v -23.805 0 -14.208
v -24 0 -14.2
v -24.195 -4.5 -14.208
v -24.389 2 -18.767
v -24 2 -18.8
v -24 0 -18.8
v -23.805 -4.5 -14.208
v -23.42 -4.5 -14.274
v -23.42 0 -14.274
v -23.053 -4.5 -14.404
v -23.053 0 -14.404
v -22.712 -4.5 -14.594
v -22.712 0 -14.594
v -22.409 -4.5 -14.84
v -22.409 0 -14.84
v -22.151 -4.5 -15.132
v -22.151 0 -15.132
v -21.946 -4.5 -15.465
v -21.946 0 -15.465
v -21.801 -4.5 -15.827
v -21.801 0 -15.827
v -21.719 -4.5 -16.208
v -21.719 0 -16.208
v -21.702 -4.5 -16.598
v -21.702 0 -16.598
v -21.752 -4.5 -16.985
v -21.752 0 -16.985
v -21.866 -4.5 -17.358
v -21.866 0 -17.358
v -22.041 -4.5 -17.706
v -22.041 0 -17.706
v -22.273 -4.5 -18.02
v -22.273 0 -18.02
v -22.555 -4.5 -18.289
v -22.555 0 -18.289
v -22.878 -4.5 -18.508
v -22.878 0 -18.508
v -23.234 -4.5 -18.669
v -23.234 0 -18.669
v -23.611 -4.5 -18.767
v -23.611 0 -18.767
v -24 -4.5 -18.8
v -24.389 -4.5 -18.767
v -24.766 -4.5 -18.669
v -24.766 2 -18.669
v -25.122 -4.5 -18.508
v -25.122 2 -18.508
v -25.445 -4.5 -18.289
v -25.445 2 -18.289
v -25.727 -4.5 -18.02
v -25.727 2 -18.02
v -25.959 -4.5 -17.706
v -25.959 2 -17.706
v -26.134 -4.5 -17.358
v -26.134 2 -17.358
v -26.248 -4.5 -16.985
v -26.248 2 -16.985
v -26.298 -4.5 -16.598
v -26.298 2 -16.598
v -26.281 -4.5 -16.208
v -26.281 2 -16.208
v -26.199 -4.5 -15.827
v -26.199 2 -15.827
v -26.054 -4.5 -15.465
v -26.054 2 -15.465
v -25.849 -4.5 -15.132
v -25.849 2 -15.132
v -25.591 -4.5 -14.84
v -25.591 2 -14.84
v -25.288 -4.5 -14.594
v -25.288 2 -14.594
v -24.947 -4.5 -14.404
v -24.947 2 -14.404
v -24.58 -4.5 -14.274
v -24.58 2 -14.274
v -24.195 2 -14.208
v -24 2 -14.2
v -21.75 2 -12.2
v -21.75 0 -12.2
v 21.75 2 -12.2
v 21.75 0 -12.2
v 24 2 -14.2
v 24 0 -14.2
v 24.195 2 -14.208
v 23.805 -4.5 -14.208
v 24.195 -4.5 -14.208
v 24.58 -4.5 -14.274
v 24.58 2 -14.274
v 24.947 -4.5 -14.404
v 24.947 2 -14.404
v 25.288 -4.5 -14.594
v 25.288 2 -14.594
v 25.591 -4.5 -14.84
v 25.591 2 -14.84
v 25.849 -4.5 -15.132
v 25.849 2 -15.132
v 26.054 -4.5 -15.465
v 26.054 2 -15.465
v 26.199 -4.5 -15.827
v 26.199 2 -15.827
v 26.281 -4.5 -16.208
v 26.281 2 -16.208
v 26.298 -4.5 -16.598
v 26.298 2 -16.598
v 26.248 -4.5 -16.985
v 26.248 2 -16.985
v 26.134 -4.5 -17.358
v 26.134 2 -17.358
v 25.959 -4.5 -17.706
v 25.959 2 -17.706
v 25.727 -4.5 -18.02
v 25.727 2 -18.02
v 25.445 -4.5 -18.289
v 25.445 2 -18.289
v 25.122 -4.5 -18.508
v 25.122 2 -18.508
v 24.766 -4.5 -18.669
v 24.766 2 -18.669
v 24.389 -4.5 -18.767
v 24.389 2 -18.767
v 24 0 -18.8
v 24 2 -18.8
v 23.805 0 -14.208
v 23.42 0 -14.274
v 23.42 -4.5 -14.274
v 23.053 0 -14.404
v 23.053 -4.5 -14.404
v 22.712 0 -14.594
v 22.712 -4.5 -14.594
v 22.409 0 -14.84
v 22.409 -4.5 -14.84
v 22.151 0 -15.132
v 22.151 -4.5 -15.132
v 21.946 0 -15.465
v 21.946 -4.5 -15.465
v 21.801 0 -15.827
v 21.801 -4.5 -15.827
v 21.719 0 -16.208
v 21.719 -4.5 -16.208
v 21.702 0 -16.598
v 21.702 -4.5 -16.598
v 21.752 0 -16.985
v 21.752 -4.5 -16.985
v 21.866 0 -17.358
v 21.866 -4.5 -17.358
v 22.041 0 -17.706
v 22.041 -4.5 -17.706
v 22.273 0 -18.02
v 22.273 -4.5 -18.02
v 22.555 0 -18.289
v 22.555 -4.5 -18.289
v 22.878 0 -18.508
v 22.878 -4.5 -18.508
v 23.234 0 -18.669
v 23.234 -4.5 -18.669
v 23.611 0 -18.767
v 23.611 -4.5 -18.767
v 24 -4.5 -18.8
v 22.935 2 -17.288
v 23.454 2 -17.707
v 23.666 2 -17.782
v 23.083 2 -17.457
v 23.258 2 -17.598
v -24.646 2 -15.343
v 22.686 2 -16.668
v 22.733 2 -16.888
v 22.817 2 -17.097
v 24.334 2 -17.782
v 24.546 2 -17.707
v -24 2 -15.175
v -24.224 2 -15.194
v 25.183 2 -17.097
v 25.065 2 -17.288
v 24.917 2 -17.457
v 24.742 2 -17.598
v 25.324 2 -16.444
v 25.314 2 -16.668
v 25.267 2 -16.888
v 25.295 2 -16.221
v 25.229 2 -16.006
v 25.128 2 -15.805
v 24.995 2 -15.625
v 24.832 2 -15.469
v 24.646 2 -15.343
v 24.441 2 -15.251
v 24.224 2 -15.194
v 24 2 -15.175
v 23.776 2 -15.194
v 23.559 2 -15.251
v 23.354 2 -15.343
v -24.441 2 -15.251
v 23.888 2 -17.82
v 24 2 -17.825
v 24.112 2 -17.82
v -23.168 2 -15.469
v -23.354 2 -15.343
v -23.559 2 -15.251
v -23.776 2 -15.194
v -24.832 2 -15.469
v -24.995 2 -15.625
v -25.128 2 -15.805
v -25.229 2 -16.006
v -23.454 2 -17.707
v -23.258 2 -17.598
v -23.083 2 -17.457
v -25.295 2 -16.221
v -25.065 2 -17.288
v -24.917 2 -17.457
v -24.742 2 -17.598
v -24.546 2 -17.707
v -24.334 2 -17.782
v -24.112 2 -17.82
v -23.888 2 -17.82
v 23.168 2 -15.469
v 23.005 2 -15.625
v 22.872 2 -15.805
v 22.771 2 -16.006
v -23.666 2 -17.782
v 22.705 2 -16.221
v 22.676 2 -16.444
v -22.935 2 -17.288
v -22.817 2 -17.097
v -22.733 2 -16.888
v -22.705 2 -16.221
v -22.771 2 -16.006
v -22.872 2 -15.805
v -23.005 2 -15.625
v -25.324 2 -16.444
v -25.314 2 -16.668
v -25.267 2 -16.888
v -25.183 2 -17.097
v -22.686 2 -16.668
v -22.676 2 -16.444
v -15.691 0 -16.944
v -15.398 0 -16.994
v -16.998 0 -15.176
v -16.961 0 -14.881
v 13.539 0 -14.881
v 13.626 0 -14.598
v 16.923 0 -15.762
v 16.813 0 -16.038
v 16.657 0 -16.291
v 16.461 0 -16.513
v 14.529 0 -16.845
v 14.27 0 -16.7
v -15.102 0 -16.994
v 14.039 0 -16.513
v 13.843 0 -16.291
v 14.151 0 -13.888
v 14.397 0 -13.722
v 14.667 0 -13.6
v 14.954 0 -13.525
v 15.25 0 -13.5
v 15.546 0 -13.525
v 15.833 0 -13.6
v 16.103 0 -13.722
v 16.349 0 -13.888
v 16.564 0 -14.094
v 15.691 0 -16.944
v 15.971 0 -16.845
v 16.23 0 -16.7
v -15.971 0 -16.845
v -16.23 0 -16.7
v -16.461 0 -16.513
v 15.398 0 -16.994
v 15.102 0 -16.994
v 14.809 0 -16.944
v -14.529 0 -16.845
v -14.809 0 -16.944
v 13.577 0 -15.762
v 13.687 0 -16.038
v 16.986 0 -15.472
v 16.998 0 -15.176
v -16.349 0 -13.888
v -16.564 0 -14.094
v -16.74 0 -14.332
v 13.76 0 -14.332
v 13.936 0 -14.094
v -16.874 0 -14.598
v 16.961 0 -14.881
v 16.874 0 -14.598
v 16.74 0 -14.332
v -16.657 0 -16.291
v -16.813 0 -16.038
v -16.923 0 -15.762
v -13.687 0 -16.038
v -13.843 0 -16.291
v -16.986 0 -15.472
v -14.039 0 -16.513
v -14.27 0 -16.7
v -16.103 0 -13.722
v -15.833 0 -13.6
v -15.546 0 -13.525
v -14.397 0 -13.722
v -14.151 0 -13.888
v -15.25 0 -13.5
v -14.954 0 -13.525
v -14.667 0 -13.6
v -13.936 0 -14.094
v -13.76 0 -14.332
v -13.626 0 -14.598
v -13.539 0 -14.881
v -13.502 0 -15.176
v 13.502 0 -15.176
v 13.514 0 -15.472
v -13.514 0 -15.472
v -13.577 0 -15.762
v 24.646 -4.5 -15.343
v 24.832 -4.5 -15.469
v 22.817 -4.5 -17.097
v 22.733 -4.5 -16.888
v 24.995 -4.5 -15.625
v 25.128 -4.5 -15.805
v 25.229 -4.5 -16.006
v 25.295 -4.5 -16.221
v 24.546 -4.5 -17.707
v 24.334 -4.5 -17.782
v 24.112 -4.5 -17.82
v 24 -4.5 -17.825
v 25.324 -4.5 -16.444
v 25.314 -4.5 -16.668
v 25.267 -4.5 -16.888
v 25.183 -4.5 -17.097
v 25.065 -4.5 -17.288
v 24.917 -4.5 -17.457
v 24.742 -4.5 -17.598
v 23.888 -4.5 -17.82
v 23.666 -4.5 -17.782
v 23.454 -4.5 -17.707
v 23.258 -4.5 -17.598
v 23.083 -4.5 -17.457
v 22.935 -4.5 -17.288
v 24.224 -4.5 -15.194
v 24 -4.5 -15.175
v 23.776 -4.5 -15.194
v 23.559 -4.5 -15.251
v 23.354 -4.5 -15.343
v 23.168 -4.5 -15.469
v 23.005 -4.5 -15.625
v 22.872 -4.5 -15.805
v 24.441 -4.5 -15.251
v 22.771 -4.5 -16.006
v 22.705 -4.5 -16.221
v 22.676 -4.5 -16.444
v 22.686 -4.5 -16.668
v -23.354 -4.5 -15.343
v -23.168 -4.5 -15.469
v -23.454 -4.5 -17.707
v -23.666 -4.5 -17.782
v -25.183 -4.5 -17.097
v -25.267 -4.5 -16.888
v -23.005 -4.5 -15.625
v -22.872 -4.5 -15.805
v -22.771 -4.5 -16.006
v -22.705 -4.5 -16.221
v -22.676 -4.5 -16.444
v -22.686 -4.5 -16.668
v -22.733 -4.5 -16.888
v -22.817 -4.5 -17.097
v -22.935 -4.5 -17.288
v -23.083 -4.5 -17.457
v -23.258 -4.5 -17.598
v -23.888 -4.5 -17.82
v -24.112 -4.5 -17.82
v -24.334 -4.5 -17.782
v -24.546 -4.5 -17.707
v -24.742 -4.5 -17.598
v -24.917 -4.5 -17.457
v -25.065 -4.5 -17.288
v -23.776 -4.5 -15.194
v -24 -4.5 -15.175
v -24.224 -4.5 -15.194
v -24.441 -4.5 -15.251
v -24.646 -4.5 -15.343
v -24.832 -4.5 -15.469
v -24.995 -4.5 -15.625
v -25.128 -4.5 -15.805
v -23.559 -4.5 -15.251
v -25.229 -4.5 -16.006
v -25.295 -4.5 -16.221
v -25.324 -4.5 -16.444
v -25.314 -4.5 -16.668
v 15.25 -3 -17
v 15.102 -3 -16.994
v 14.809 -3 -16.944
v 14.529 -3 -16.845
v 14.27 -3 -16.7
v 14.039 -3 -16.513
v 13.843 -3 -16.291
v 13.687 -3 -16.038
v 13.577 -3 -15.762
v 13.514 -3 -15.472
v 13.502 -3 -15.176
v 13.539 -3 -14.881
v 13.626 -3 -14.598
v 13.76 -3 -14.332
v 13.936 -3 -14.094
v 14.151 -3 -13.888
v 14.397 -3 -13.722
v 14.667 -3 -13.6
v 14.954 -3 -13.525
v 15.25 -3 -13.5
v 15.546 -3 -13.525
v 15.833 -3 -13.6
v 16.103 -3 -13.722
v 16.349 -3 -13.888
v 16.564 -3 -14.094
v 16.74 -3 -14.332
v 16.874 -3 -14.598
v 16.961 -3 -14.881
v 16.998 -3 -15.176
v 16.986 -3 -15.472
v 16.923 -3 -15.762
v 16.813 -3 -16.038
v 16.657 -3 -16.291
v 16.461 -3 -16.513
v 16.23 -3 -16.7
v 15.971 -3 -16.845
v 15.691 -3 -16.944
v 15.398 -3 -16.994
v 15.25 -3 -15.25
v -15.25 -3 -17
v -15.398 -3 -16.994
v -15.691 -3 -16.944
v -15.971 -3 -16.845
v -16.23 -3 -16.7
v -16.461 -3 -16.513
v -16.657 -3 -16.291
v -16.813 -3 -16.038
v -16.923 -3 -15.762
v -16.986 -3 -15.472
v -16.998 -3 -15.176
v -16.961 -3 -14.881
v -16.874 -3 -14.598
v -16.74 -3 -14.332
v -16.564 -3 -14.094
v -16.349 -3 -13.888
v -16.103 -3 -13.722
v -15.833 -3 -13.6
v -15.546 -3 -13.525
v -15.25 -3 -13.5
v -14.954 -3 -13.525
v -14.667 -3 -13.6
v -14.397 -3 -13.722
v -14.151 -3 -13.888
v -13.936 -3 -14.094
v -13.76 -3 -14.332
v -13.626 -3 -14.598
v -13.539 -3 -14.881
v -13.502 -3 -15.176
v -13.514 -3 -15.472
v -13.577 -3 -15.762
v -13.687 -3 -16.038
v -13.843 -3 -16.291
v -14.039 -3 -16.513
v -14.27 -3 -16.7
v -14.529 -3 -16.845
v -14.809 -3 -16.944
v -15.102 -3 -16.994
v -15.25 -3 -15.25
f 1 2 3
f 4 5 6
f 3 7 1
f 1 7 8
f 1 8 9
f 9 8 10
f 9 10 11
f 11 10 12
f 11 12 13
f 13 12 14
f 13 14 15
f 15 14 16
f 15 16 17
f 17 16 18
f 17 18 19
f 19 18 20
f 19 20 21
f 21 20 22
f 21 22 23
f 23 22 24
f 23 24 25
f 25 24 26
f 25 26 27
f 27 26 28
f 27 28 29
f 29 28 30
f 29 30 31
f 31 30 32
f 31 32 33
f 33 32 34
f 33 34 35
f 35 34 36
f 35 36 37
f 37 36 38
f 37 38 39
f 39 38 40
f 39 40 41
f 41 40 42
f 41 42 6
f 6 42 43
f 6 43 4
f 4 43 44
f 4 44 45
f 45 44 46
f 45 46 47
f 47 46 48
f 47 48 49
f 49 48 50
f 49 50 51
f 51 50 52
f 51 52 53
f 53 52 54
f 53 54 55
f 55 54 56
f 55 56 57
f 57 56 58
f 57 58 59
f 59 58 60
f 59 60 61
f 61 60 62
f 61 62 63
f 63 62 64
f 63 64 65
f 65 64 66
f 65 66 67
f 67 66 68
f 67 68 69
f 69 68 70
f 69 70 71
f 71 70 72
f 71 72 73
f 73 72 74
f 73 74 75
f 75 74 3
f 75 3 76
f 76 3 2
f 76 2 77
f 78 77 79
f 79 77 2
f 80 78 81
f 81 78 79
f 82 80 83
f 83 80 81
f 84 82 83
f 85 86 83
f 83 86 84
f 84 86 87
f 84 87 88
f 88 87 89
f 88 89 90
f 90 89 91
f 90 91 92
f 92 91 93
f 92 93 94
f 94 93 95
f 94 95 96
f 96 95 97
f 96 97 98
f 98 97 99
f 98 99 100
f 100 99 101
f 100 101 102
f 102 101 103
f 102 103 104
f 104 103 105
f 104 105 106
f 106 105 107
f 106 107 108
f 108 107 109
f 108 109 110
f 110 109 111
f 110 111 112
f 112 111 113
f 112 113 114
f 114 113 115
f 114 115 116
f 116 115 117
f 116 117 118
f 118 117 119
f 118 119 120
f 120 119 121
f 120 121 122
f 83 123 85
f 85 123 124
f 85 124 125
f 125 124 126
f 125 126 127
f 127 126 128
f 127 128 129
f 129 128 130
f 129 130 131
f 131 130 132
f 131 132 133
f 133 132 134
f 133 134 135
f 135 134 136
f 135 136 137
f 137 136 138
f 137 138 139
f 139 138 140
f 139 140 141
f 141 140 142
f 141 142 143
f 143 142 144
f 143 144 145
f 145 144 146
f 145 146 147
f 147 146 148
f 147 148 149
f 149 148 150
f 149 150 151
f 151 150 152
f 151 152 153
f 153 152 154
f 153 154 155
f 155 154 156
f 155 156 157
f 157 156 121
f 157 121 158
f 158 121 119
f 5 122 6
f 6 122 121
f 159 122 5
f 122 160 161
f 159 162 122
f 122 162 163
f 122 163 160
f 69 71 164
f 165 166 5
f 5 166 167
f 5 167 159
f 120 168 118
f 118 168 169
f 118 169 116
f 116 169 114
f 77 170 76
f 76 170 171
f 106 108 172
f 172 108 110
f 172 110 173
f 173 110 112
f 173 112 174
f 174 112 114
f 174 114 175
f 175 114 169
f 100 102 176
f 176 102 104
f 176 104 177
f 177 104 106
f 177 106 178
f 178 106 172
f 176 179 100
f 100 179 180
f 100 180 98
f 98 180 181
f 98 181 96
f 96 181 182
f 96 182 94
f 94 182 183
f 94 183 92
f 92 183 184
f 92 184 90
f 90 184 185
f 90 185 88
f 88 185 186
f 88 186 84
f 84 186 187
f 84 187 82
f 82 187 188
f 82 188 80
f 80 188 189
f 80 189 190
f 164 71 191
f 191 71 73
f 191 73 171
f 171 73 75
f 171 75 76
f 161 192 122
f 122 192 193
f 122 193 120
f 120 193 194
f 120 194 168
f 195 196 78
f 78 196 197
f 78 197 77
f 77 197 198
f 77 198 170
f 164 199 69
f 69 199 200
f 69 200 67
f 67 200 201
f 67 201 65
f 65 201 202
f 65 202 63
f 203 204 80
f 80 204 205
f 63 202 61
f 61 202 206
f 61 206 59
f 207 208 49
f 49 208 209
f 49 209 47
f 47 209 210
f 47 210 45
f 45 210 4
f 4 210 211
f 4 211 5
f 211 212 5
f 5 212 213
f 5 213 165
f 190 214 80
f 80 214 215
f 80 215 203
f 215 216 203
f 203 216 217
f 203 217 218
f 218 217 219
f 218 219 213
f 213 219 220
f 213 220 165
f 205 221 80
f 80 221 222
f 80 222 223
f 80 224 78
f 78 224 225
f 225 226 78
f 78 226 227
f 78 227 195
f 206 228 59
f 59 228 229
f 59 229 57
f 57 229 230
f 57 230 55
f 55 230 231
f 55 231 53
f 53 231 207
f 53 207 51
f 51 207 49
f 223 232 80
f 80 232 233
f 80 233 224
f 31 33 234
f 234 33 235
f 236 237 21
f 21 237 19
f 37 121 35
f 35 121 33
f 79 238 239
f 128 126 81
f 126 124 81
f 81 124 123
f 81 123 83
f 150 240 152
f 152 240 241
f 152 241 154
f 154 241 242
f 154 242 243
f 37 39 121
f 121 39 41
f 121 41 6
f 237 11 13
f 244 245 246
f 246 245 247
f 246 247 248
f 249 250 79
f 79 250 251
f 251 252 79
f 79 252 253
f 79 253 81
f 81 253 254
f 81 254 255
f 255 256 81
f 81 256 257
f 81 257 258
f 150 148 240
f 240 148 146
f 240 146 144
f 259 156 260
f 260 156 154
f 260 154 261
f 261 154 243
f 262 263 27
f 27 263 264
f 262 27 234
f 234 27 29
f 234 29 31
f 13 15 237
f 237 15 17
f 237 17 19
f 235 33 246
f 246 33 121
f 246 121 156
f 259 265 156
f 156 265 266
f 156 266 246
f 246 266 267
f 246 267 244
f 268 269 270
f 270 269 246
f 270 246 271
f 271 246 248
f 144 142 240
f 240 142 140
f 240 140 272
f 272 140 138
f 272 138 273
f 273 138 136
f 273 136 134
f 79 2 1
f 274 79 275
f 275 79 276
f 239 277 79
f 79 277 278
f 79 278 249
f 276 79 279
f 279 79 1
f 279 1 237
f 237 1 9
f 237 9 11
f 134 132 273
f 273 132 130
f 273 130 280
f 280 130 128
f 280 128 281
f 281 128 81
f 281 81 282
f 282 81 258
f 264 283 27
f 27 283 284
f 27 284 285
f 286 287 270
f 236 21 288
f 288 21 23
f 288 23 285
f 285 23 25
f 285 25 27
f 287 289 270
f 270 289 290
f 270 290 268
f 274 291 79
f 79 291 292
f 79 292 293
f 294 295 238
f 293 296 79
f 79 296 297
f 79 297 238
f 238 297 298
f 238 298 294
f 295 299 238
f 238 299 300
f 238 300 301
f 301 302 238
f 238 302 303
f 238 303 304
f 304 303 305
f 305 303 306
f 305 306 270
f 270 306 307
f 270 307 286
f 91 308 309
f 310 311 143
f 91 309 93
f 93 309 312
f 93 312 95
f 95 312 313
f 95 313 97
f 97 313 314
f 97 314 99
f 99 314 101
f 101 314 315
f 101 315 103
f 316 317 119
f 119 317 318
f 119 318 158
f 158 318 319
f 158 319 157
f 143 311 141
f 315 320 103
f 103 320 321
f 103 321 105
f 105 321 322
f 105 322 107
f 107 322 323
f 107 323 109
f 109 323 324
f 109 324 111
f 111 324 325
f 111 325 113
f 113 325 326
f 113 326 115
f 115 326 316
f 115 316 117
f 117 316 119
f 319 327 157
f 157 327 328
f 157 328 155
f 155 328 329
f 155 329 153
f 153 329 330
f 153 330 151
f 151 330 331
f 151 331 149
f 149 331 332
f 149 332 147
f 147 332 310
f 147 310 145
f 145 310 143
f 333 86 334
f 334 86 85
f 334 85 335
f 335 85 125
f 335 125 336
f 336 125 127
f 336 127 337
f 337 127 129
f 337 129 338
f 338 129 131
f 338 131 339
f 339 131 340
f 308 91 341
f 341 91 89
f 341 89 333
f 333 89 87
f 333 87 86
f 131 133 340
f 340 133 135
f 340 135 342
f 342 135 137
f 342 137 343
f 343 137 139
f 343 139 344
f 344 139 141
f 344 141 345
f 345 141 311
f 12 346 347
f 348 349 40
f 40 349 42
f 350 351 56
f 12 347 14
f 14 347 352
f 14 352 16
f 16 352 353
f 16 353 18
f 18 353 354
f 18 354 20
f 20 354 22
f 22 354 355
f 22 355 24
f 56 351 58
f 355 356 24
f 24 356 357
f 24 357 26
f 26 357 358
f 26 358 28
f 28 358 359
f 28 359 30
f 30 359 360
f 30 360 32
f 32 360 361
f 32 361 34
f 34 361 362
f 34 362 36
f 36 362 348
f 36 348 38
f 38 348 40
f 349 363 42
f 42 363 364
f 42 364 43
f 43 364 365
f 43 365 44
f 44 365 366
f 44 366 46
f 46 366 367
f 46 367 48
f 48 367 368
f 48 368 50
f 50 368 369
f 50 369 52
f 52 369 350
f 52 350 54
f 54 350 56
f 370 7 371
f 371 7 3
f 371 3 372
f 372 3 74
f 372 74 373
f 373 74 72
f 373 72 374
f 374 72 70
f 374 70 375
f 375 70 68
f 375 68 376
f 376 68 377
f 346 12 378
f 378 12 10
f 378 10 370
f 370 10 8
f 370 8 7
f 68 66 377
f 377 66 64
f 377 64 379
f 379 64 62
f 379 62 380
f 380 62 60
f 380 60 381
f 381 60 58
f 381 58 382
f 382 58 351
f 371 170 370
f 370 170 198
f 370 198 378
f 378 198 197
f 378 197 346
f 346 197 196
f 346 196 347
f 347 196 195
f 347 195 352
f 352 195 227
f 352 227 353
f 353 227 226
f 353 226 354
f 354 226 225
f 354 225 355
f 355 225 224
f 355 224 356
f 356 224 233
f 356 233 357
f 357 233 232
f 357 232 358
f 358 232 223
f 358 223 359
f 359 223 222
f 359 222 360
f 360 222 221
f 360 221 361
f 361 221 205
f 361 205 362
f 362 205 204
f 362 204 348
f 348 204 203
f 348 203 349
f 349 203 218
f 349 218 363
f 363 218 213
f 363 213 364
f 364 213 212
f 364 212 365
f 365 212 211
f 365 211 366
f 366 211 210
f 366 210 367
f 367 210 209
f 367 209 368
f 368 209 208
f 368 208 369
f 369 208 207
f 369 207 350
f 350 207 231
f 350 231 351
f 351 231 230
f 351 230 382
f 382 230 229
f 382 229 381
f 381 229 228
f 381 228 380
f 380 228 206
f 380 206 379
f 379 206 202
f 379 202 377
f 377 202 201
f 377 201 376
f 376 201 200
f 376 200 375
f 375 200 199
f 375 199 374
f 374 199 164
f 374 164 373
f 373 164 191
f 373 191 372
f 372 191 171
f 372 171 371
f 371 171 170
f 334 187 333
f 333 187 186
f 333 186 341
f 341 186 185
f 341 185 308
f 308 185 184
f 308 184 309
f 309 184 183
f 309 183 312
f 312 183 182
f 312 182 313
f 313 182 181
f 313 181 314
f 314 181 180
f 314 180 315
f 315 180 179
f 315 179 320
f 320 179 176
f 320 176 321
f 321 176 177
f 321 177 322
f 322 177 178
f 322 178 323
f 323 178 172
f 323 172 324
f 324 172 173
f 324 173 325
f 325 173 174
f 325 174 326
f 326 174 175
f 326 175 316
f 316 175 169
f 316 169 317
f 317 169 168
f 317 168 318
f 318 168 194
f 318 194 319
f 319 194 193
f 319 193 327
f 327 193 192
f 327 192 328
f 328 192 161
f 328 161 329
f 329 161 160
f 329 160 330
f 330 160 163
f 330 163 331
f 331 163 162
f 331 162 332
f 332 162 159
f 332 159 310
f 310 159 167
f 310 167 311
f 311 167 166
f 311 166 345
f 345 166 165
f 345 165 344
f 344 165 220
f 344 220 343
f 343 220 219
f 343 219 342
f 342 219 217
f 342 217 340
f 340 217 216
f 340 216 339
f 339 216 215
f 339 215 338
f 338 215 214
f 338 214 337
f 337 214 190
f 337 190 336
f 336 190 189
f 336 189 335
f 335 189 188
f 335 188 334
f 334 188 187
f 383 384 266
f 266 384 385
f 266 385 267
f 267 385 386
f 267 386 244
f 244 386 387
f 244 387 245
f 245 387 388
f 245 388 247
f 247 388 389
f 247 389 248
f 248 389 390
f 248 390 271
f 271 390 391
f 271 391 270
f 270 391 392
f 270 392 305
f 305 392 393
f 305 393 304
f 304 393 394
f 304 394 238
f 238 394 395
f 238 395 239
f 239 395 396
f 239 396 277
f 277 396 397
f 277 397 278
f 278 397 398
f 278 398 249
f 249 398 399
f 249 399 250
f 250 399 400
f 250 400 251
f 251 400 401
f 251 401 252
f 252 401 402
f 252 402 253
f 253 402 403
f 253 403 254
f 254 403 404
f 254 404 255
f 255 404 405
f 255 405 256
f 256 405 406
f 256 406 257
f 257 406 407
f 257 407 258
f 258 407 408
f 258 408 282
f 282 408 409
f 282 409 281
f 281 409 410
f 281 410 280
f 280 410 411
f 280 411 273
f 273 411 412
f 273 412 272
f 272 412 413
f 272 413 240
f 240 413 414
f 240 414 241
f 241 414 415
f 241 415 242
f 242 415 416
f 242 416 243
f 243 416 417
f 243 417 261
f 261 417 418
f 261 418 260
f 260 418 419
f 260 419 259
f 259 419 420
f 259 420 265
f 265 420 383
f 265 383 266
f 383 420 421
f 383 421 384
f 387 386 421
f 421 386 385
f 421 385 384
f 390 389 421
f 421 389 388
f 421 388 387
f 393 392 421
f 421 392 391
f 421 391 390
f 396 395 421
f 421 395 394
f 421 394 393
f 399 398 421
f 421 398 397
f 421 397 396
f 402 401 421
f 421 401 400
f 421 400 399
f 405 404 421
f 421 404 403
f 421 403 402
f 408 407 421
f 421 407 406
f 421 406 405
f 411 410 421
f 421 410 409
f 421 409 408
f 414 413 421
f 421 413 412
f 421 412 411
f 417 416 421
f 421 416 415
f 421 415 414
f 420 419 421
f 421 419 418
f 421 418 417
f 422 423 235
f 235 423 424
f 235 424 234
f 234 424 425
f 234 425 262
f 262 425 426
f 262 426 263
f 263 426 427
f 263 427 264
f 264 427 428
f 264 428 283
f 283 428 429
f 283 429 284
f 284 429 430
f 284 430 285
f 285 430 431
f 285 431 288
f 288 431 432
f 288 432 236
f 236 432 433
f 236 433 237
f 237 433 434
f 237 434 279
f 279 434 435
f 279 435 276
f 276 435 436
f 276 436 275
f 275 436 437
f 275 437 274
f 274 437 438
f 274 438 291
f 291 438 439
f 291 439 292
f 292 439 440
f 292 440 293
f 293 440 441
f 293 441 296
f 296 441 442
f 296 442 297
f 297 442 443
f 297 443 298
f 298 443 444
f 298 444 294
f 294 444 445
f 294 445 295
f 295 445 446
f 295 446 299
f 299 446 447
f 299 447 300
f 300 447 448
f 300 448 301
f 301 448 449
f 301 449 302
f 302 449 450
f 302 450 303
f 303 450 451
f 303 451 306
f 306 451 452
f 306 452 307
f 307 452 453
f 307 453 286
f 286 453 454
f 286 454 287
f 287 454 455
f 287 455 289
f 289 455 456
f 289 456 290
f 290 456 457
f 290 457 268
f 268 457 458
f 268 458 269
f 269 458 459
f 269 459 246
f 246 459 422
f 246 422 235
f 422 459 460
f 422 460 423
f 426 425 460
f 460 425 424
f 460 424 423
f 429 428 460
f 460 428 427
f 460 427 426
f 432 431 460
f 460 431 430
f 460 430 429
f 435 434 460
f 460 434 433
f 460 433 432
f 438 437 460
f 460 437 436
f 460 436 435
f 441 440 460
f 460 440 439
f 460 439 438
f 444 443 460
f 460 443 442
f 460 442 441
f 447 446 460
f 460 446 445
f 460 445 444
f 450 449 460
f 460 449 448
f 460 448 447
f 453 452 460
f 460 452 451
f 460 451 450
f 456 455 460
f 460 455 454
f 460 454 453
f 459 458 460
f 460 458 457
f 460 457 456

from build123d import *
from build123d.topology import SkipClean

# Parameters (mm, degrees)
BOSS_EXTRUDE1_DEPTH     = 2
BOSS_EXTRUDE2_START     = 4.5
SKETCH6_R               = 2.3
BOSS_EXTRUDE2_DEPTH     = 4.5
CUT_EXTRUDE1_DEPTH      = 33.640159313
CUT_EXTRUDE1_DEPTH_BACK = 33.640159313
SKETCH1_R               = 1.325
SKETCH7_R               = 1.75
BOSS_EXTRUDE3_DEPTH     = 3


with BuildPart() as part:
    # Sketch5 → Boss-Extrude1 (new body)
    with BuildSketch(Plane(origin=(0, 0, 0), x_dir=(1, 0, 0), z_dir=(0, 1, 0))):
        with BuildLine():
            Line((-24, 14.2), (-21.75, 12.2))
            Line((-21.75, 12.2), (21.75, 12.2))
            Line((21.75, 12.2), (24, 14.2))
            ThreePointArc((24, 14.2), (26.3, 16.5), (24, 18.8))
            Line((24, 18.8), (-24, 18.8))
            ThreePointArc((-24, 18.8), (-26.3, 16.5), (-24, 14.2))
        make_face()
    extrude(amount=BOSS_EXTRUDE1_DEPTH)

    # Sketch6 → Boss-Extrude2 (add)
    with SkipClean():  # the faces are left unmerged after this step: merging them gives an invalid solid
        with BuildSketch(Plane.XZ.offset(BOSS_EXTRUDE2_START)):
            with Locations((-24, -16.5)):
                Circle(SKETCH6_R)
            with Locations((24, -16.5)):
                Circle(SKETCH6_R)
        extrude(amount=-BOSS_EXTRUDE2_DEPTH)

    # Sketch1 → Cut-Extrude1 (cut, two sides: drawn at the far end of the back side and taken through both)
    with SkipClean():  # the faces are left unmerged after this step: merging them gives an invalid solid
        with BuildSketch(Plane(origin=(0, 0, 0), x_dir=(1, 0, 0), z_dir=(0, 1, 0)).offset(-CUT_EXTRUDE1_DEPTH_BACK)):
            with Locations((-24, 16.5)):
                Circle(SKETCH1_R)
            with Locations((24, 16.5)):
                Circle(SKETCH1_R)
            with Locations((-24, -16.5)):
                Circle(SKETCH1_R)
            with Locations((24, -16.5)):
                Circle(SKETCH1_R)
        extrude(amount=CUT_EXTRUDE1_DEPTH + CUT_EXTRUDE1_DEPTH_BACK, mode=Mode.SUBTRACT)

    # Sketch7 → Boss-Extrude3 (add)
    with SkipClean():  # the faces are left unmerged after this step: merging them gives an invalid solid
        with BuildSketch(Plane.XZ):
            with Locations((-15.25, -15.25)):
                Circle(SKETCH7_R)
            with Locations((15.25, -15.25)):
                Circle(SKETCH7_R)
        extrude(amount=BOSS_EXTRUDE3_DEPTH)


solid = part.part
